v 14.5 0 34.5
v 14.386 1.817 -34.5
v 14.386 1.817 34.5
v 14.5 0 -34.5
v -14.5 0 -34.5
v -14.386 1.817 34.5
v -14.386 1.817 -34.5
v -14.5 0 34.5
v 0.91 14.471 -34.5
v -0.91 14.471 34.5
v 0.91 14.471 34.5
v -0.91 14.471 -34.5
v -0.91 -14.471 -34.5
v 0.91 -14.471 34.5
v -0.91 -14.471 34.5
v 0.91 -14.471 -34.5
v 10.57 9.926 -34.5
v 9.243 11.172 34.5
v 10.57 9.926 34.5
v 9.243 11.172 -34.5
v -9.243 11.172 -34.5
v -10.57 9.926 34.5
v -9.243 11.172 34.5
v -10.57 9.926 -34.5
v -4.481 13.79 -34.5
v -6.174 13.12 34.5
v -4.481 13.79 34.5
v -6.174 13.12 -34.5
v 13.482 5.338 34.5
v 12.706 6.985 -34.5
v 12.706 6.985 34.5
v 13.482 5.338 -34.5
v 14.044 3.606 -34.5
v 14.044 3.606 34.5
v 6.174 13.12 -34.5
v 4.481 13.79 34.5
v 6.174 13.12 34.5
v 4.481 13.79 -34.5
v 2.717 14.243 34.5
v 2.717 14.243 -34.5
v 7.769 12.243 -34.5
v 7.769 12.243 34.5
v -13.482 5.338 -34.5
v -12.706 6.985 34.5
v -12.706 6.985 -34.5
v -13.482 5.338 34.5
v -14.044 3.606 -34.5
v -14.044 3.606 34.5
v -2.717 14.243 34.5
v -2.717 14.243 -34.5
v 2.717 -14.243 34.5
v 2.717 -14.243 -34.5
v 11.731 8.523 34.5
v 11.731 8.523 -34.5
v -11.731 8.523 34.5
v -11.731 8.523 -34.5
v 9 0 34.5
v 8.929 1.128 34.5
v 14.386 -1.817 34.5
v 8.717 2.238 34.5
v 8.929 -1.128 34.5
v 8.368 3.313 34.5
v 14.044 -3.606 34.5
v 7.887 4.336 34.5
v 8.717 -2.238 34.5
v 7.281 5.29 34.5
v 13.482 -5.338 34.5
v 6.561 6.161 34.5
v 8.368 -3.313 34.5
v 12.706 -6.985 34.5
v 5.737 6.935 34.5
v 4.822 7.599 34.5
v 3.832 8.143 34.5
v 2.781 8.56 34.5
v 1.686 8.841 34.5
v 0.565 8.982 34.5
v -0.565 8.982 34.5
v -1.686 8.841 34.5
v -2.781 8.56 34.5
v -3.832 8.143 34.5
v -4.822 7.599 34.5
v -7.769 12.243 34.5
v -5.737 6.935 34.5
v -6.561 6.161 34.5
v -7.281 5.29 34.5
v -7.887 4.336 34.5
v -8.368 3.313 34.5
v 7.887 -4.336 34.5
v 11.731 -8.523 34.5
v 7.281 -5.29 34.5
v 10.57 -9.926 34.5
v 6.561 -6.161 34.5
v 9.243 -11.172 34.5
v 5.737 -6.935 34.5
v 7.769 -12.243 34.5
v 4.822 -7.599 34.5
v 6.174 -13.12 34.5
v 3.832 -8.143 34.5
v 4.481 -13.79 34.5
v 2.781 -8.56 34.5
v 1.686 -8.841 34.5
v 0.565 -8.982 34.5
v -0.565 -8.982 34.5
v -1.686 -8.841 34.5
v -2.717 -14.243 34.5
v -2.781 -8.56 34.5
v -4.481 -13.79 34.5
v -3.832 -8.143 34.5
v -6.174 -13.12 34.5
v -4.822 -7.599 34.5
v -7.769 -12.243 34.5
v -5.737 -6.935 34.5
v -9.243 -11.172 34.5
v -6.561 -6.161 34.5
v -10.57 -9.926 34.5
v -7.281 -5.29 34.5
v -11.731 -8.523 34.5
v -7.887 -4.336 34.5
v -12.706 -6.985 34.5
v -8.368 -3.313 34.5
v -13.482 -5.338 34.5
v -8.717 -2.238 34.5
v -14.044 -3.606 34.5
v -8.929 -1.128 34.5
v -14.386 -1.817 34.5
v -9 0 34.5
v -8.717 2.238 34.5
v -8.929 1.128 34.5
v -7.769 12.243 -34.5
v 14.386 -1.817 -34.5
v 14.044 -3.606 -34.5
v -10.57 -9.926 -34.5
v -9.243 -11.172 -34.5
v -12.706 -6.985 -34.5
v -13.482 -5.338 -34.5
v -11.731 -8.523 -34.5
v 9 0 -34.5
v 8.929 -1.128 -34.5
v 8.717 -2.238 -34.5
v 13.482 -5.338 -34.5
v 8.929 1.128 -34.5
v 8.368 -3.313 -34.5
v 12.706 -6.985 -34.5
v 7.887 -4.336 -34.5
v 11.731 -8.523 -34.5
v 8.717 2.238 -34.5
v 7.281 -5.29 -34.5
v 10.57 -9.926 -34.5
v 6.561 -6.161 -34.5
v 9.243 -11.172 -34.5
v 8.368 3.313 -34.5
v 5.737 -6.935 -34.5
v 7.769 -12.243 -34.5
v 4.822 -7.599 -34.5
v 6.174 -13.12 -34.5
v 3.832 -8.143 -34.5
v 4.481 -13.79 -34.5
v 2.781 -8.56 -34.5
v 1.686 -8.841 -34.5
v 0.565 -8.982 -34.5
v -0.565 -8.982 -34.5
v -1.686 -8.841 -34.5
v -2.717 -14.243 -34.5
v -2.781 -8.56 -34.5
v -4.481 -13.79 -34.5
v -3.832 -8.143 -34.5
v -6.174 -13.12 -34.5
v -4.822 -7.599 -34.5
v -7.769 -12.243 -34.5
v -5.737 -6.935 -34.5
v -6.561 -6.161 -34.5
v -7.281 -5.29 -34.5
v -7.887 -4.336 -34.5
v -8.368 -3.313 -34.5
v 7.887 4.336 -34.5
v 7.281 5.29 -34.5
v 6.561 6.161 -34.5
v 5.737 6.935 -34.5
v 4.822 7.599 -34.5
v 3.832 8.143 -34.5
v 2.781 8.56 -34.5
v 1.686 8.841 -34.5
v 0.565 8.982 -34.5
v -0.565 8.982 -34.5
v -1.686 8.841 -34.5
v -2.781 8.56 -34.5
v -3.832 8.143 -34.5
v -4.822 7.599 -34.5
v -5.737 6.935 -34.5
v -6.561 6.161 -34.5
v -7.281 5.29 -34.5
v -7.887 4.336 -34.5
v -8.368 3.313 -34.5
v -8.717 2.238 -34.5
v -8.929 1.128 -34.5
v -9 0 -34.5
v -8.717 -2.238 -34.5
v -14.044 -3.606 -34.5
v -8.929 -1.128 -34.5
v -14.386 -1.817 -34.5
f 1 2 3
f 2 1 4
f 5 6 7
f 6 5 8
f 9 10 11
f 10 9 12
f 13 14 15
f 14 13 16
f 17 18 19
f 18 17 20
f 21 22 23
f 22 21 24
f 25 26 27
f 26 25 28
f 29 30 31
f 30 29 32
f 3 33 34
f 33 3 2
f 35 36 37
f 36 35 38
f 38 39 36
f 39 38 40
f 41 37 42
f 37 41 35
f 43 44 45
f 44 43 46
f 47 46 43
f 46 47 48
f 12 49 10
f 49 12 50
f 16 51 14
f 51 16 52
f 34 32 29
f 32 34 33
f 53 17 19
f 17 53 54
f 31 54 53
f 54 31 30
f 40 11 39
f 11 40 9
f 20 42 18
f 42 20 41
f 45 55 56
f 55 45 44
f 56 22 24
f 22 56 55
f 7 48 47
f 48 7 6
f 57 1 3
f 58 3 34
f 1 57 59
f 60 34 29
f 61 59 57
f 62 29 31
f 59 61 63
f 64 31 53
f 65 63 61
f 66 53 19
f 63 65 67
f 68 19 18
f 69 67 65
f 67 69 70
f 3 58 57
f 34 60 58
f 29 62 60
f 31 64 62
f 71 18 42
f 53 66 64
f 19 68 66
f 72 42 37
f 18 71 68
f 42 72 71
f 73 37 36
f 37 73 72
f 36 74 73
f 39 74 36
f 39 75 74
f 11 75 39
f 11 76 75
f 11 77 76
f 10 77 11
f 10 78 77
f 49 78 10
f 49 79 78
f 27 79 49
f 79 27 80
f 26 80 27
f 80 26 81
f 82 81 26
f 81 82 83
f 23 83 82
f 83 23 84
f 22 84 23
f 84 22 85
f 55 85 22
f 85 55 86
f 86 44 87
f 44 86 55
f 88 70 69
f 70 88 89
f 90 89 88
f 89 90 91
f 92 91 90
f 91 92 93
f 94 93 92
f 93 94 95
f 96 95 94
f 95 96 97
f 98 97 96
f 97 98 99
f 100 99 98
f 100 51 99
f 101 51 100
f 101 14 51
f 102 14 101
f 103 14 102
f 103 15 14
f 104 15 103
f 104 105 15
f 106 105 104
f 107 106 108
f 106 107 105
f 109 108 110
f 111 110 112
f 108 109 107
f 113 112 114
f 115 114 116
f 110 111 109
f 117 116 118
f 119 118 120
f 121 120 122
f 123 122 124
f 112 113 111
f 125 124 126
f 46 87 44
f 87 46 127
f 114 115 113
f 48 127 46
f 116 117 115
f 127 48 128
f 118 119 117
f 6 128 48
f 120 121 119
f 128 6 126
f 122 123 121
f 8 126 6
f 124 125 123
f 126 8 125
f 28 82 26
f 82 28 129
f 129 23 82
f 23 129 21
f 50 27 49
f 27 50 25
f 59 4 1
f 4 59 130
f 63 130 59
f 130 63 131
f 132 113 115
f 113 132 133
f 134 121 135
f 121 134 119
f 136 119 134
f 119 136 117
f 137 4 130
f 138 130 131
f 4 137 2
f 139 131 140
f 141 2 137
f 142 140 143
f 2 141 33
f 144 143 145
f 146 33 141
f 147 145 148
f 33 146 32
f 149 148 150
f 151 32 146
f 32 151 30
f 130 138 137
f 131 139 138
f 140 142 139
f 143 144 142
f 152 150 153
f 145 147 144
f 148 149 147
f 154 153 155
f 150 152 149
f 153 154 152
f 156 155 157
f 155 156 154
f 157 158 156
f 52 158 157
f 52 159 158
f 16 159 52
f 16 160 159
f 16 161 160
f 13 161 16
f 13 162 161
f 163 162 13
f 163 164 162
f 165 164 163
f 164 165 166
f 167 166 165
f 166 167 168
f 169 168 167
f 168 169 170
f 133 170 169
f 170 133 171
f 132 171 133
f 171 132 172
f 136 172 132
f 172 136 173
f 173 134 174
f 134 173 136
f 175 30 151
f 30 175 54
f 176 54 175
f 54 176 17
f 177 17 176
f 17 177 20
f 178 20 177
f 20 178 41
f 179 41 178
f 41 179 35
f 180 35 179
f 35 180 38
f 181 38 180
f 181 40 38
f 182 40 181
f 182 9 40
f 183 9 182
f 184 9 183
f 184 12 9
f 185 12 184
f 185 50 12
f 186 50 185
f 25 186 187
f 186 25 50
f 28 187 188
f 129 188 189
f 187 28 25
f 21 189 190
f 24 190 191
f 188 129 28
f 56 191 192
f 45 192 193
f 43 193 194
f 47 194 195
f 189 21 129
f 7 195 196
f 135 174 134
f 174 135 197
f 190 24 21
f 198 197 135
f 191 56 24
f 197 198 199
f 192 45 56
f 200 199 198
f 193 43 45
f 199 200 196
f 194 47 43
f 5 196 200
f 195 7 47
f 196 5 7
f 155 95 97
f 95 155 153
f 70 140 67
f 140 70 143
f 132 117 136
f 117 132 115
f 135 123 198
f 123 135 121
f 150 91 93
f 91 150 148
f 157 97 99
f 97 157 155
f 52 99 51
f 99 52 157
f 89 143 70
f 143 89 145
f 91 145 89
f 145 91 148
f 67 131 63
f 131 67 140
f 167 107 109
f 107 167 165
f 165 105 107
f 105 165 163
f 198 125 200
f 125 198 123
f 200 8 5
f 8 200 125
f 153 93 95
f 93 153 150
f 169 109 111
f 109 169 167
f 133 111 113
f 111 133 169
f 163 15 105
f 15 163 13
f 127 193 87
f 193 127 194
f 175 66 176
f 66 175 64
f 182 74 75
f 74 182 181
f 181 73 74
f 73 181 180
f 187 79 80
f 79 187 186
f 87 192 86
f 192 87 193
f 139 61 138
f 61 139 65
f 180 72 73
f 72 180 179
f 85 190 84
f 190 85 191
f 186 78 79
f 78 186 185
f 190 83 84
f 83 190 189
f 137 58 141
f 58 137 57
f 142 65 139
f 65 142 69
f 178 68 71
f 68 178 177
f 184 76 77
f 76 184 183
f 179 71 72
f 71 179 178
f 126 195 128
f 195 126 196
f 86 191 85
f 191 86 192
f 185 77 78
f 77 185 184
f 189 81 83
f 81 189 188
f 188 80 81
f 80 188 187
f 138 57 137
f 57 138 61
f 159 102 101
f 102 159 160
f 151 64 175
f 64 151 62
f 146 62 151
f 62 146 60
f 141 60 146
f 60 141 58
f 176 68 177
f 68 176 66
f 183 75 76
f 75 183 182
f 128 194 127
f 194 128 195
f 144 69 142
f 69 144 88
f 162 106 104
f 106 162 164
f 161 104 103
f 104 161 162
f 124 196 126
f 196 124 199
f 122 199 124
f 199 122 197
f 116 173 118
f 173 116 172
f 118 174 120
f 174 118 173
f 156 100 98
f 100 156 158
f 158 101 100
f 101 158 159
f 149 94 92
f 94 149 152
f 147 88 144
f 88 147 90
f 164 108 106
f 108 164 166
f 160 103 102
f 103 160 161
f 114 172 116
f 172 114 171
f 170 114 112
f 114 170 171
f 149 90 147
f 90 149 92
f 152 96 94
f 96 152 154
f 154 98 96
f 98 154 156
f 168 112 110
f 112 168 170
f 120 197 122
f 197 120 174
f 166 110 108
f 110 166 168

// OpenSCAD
$fn = 50;


difference() {
	union() {
		translate(v = [0, 0, -34.5000000000]) {
			cylinder(h = 69, r = 14.5000000000);
		}
	}
	union() {
		translate(v = [0, 0, -100.0000000000]) {
			cylinder(h = 200, r = 9);
		}
	}
}
